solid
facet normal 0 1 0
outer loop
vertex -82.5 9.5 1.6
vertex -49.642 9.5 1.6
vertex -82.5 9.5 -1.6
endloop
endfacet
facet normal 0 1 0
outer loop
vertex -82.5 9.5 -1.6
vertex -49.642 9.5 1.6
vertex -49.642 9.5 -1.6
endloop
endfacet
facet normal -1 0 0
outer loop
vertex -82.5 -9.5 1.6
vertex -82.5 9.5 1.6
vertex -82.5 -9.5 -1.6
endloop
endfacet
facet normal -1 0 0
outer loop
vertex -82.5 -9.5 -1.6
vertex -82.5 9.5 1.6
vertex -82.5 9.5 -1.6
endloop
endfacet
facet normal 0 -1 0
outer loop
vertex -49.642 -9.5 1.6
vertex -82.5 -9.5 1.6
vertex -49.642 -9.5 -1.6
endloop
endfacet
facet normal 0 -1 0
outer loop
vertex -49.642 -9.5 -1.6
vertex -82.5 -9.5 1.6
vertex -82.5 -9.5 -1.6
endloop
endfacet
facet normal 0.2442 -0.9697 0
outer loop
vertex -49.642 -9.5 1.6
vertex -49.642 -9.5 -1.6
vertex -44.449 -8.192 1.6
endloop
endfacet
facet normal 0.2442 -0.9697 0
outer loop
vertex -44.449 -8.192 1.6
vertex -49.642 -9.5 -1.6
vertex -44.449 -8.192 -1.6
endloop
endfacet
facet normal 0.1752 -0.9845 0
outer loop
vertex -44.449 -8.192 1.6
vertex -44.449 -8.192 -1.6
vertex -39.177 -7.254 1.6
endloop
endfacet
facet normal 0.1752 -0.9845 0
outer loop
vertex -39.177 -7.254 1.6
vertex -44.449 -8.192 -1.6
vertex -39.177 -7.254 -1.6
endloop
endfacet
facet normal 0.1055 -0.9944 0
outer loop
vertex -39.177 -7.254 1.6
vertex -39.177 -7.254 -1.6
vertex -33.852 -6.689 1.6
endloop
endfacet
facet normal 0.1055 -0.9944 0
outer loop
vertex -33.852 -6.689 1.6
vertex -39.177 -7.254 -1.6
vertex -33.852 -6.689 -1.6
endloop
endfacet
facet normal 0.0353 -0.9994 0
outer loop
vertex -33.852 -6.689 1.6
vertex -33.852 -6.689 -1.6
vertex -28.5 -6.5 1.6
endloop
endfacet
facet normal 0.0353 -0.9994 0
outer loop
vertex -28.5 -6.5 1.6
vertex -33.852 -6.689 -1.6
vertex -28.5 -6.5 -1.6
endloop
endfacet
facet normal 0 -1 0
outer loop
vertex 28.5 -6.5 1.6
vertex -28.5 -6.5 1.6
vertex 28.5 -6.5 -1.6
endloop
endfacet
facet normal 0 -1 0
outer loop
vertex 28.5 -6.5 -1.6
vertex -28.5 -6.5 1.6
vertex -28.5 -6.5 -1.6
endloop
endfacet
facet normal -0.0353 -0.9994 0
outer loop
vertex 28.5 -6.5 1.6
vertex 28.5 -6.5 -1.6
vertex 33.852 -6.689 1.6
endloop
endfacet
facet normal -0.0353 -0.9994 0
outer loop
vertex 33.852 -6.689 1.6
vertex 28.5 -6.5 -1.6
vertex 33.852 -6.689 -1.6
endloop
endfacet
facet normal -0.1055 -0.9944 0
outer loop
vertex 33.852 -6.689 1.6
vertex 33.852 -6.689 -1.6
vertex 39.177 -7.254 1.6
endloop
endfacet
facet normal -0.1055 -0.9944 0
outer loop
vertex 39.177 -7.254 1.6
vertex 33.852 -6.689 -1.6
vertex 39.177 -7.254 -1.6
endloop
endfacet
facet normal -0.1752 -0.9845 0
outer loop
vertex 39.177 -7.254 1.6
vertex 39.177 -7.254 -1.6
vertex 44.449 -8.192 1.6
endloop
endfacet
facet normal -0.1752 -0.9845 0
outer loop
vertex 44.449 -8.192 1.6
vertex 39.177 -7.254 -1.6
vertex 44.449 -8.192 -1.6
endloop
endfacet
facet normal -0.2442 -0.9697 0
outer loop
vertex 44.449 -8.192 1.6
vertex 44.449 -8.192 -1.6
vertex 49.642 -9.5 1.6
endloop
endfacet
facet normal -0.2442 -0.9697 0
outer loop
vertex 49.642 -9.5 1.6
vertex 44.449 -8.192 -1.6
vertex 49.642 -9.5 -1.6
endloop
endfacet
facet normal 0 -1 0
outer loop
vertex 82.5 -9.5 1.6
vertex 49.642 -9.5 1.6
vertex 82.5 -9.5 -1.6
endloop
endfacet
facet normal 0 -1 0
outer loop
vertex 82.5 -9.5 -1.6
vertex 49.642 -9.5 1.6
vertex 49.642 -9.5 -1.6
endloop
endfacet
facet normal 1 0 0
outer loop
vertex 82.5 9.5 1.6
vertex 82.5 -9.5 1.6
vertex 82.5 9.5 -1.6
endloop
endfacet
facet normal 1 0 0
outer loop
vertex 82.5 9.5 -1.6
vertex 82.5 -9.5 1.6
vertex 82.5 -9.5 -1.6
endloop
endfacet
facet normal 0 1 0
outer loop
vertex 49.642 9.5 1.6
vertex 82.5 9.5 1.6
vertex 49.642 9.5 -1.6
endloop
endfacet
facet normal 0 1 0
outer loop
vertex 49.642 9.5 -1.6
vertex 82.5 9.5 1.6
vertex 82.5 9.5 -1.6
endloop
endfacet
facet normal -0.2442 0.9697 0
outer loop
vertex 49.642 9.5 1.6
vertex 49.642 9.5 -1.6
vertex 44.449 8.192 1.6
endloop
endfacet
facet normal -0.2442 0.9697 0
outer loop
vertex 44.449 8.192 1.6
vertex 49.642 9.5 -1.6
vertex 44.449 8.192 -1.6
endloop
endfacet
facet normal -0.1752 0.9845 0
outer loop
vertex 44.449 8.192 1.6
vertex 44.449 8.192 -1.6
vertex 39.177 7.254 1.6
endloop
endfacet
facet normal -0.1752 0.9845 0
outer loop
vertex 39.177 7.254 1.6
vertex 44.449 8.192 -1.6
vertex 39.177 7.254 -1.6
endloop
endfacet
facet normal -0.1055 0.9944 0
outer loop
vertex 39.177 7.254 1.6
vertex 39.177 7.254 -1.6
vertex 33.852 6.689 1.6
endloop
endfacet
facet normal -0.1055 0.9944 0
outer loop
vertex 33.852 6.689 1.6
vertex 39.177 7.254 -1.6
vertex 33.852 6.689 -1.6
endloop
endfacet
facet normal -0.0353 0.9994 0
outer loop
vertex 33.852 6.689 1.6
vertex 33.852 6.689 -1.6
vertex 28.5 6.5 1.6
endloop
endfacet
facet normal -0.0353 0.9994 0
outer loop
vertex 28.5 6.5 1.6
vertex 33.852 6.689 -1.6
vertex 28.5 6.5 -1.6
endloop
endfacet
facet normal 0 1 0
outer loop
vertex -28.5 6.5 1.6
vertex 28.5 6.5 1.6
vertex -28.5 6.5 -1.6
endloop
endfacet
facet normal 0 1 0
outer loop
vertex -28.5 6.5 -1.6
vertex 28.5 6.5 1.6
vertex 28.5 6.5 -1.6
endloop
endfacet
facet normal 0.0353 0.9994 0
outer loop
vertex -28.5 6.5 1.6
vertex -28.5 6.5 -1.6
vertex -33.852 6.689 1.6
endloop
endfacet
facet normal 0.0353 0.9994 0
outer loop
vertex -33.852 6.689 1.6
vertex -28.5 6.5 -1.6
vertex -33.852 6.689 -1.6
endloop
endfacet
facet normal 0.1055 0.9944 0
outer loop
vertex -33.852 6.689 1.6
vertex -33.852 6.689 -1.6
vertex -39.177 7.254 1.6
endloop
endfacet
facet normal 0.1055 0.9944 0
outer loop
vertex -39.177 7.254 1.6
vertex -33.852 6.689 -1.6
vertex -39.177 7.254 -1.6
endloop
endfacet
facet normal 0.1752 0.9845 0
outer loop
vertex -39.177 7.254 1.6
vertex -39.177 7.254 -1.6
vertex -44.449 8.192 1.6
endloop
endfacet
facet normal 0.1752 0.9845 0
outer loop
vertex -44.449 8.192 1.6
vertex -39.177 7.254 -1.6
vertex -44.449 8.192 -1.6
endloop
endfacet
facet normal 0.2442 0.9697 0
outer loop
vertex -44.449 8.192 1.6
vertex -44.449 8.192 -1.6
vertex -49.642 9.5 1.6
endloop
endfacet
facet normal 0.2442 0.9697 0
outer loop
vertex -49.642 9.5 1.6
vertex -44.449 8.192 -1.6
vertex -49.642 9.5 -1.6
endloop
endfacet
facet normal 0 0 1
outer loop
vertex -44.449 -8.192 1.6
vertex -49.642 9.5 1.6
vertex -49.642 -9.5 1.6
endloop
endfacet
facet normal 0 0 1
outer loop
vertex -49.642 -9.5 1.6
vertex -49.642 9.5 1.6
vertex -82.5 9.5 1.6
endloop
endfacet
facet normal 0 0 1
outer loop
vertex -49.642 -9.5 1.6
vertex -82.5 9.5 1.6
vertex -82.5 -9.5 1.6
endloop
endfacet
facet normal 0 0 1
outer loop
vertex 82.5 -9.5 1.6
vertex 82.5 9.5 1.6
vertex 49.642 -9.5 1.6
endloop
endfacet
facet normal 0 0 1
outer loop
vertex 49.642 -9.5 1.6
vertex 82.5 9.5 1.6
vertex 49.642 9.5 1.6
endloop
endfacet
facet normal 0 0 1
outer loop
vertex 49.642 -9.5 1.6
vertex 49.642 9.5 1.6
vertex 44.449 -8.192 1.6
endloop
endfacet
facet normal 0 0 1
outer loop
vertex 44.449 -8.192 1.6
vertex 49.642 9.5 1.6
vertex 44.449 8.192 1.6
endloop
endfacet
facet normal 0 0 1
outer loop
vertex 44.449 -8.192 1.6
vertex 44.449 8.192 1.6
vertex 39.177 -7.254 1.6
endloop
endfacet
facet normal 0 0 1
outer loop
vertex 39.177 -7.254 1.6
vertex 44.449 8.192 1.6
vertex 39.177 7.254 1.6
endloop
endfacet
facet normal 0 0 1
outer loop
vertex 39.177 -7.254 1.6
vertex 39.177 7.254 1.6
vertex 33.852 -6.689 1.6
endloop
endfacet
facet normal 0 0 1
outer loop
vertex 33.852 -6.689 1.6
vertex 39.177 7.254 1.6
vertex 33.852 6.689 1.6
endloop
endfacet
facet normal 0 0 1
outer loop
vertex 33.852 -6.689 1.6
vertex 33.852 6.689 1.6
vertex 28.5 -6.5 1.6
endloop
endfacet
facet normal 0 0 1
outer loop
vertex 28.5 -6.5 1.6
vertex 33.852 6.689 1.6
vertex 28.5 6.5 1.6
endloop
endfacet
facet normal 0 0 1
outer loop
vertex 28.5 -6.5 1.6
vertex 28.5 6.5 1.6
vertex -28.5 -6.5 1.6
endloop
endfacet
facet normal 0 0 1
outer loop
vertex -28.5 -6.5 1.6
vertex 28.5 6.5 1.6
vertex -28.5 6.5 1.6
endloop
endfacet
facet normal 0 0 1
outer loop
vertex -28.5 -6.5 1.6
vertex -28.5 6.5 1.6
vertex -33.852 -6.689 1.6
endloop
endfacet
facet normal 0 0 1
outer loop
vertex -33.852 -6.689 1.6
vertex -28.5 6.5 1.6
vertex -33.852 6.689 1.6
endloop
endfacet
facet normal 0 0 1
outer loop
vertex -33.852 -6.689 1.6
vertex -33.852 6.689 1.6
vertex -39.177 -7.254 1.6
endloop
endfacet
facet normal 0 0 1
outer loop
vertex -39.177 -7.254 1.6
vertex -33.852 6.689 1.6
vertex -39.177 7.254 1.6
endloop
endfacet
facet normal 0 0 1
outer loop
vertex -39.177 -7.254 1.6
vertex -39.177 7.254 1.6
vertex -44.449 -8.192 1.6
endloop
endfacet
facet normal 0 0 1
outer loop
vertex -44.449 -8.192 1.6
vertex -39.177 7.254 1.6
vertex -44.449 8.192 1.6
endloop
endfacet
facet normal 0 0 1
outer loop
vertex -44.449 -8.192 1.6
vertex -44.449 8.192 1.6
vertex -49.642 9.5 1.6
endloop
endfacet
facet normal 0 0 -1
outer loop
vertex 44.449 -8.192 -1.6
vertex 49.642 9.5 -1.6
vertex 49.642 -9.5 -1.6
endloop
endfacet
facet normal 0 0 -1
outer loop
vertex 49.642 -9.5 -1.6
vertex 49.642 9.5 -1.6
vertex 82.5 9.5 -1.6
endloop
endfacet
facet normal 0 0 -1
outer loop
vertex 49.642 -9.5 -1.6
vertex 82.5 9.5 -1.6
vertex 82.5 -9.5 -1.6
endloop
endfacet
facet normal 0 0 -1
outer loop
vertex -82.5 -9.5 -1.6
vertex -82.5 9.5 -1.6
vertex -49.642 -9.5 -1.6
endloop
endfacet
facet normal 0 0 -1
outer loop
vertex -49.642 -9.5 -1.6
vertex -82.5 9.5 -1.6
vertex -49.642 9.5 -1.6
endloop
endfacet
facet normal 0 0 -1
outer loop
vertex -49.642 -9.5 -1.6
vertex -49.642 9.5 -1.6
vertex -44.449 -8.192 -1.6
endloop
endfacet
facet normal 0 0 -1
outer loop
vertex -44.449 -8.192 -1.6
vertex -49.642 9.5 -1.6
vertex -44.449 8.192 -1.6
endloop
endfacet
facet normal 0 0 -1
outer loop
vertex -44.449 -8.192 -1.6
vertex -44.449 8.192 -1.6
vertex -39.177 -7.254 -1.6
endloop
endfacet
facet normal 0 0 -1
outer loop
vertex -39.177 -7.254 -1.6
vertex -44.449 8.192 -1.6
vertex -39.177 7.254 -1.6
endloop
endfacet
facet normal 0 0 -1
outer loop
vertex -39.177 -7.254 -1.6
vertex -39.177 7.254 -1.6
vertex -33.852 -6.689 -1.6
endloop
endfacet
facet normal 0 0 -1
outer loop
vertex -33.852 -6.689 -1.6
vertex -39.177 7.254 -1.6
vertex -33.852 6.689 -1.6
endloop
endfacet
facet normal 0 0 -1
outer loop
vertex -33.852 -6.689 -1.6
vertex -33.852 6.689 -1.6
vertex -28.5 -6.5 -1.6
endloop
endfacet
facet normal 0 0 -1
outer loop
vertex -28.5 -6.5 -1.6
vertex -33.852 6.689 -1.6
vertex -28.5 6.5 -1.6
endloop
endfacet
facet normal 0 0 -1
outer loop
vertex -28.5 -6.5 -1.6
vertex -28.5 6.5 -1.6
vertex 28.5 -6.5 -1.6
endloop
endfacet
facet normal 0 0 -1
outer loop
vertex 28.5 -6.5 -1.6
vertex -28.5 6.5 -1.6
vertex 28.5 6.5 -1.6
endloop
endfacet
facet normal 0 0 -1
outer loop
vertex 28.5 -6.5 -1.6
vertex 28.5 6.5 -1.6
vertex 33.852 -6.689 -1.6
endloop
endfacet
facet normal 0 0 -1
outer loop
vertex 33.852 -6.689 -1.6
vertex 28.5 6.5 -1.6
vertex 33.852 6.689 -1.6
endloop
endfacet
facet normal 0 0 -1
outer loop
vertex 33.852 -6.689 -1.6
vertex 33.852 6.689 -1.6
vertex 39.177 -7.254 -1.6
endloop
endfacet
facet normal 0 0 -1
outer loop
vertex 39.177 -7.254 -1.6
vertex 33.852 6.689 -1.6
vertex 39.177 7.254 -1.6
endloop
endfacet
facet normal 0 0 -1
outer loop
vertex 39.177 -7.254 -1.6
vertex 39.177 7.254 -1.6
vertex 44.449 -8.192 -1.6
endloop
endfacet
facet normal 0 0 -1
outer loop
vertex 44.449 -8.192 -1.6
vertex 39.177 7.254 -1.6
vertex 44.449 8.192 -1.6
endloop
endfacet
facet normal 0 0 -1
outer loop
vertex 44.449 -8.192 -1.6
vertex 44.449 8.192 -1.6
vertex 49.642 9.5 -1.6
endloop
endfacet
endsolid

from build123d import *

# Parameters (mm, degrees)
BOSS_EXTRUDE1_DEPTH = 1.6


with BuildPart() as part:
    # Sketch1 → Boss-Extrude1 (new, symmetric)
    with BuildSketch(Plane.XY):
        with BuildLine():
            Line((-82.5, 9.5), (-82.5, -9.5))
            Line((-82.5, -9.5), (-49.642374512, -9.5))
            ThreePointArc((-49.642374512, -9.5), (-39.177078252, -7.253737634), (-28.5, -6.5))
            Line((-28.5, -6.5), (28.5, -6.5))
            ThreePointArc((28.5, -6.5), (39.177078252, -7.253737634), (49.642374512, -9.5))
            Line((49.642374512, -9.5), (82.5, -9.5))
            Line((82.5, -9.5), (82.5, 9.5))
            Line((82.5, 9.5), (49.642374512, 9.5))
            ThreePointArc((49.642374512, 9.5), (39.177078252, 7.253737634), (28.5, 6.5))
            Line((28.5, 6.5), (-28.5, 6.5))
            ThreePointArc((-28.5, 6.5), (-39.177078252, 7.253737634), (-49.642374512, 9.5))
            Line((-49.642374512, 9.5), (-82.5, 9.5))
        make_face()
    extrude(amount=BOSS_EXTRUDE1_DEPTH, both=True)


solid = part.part
